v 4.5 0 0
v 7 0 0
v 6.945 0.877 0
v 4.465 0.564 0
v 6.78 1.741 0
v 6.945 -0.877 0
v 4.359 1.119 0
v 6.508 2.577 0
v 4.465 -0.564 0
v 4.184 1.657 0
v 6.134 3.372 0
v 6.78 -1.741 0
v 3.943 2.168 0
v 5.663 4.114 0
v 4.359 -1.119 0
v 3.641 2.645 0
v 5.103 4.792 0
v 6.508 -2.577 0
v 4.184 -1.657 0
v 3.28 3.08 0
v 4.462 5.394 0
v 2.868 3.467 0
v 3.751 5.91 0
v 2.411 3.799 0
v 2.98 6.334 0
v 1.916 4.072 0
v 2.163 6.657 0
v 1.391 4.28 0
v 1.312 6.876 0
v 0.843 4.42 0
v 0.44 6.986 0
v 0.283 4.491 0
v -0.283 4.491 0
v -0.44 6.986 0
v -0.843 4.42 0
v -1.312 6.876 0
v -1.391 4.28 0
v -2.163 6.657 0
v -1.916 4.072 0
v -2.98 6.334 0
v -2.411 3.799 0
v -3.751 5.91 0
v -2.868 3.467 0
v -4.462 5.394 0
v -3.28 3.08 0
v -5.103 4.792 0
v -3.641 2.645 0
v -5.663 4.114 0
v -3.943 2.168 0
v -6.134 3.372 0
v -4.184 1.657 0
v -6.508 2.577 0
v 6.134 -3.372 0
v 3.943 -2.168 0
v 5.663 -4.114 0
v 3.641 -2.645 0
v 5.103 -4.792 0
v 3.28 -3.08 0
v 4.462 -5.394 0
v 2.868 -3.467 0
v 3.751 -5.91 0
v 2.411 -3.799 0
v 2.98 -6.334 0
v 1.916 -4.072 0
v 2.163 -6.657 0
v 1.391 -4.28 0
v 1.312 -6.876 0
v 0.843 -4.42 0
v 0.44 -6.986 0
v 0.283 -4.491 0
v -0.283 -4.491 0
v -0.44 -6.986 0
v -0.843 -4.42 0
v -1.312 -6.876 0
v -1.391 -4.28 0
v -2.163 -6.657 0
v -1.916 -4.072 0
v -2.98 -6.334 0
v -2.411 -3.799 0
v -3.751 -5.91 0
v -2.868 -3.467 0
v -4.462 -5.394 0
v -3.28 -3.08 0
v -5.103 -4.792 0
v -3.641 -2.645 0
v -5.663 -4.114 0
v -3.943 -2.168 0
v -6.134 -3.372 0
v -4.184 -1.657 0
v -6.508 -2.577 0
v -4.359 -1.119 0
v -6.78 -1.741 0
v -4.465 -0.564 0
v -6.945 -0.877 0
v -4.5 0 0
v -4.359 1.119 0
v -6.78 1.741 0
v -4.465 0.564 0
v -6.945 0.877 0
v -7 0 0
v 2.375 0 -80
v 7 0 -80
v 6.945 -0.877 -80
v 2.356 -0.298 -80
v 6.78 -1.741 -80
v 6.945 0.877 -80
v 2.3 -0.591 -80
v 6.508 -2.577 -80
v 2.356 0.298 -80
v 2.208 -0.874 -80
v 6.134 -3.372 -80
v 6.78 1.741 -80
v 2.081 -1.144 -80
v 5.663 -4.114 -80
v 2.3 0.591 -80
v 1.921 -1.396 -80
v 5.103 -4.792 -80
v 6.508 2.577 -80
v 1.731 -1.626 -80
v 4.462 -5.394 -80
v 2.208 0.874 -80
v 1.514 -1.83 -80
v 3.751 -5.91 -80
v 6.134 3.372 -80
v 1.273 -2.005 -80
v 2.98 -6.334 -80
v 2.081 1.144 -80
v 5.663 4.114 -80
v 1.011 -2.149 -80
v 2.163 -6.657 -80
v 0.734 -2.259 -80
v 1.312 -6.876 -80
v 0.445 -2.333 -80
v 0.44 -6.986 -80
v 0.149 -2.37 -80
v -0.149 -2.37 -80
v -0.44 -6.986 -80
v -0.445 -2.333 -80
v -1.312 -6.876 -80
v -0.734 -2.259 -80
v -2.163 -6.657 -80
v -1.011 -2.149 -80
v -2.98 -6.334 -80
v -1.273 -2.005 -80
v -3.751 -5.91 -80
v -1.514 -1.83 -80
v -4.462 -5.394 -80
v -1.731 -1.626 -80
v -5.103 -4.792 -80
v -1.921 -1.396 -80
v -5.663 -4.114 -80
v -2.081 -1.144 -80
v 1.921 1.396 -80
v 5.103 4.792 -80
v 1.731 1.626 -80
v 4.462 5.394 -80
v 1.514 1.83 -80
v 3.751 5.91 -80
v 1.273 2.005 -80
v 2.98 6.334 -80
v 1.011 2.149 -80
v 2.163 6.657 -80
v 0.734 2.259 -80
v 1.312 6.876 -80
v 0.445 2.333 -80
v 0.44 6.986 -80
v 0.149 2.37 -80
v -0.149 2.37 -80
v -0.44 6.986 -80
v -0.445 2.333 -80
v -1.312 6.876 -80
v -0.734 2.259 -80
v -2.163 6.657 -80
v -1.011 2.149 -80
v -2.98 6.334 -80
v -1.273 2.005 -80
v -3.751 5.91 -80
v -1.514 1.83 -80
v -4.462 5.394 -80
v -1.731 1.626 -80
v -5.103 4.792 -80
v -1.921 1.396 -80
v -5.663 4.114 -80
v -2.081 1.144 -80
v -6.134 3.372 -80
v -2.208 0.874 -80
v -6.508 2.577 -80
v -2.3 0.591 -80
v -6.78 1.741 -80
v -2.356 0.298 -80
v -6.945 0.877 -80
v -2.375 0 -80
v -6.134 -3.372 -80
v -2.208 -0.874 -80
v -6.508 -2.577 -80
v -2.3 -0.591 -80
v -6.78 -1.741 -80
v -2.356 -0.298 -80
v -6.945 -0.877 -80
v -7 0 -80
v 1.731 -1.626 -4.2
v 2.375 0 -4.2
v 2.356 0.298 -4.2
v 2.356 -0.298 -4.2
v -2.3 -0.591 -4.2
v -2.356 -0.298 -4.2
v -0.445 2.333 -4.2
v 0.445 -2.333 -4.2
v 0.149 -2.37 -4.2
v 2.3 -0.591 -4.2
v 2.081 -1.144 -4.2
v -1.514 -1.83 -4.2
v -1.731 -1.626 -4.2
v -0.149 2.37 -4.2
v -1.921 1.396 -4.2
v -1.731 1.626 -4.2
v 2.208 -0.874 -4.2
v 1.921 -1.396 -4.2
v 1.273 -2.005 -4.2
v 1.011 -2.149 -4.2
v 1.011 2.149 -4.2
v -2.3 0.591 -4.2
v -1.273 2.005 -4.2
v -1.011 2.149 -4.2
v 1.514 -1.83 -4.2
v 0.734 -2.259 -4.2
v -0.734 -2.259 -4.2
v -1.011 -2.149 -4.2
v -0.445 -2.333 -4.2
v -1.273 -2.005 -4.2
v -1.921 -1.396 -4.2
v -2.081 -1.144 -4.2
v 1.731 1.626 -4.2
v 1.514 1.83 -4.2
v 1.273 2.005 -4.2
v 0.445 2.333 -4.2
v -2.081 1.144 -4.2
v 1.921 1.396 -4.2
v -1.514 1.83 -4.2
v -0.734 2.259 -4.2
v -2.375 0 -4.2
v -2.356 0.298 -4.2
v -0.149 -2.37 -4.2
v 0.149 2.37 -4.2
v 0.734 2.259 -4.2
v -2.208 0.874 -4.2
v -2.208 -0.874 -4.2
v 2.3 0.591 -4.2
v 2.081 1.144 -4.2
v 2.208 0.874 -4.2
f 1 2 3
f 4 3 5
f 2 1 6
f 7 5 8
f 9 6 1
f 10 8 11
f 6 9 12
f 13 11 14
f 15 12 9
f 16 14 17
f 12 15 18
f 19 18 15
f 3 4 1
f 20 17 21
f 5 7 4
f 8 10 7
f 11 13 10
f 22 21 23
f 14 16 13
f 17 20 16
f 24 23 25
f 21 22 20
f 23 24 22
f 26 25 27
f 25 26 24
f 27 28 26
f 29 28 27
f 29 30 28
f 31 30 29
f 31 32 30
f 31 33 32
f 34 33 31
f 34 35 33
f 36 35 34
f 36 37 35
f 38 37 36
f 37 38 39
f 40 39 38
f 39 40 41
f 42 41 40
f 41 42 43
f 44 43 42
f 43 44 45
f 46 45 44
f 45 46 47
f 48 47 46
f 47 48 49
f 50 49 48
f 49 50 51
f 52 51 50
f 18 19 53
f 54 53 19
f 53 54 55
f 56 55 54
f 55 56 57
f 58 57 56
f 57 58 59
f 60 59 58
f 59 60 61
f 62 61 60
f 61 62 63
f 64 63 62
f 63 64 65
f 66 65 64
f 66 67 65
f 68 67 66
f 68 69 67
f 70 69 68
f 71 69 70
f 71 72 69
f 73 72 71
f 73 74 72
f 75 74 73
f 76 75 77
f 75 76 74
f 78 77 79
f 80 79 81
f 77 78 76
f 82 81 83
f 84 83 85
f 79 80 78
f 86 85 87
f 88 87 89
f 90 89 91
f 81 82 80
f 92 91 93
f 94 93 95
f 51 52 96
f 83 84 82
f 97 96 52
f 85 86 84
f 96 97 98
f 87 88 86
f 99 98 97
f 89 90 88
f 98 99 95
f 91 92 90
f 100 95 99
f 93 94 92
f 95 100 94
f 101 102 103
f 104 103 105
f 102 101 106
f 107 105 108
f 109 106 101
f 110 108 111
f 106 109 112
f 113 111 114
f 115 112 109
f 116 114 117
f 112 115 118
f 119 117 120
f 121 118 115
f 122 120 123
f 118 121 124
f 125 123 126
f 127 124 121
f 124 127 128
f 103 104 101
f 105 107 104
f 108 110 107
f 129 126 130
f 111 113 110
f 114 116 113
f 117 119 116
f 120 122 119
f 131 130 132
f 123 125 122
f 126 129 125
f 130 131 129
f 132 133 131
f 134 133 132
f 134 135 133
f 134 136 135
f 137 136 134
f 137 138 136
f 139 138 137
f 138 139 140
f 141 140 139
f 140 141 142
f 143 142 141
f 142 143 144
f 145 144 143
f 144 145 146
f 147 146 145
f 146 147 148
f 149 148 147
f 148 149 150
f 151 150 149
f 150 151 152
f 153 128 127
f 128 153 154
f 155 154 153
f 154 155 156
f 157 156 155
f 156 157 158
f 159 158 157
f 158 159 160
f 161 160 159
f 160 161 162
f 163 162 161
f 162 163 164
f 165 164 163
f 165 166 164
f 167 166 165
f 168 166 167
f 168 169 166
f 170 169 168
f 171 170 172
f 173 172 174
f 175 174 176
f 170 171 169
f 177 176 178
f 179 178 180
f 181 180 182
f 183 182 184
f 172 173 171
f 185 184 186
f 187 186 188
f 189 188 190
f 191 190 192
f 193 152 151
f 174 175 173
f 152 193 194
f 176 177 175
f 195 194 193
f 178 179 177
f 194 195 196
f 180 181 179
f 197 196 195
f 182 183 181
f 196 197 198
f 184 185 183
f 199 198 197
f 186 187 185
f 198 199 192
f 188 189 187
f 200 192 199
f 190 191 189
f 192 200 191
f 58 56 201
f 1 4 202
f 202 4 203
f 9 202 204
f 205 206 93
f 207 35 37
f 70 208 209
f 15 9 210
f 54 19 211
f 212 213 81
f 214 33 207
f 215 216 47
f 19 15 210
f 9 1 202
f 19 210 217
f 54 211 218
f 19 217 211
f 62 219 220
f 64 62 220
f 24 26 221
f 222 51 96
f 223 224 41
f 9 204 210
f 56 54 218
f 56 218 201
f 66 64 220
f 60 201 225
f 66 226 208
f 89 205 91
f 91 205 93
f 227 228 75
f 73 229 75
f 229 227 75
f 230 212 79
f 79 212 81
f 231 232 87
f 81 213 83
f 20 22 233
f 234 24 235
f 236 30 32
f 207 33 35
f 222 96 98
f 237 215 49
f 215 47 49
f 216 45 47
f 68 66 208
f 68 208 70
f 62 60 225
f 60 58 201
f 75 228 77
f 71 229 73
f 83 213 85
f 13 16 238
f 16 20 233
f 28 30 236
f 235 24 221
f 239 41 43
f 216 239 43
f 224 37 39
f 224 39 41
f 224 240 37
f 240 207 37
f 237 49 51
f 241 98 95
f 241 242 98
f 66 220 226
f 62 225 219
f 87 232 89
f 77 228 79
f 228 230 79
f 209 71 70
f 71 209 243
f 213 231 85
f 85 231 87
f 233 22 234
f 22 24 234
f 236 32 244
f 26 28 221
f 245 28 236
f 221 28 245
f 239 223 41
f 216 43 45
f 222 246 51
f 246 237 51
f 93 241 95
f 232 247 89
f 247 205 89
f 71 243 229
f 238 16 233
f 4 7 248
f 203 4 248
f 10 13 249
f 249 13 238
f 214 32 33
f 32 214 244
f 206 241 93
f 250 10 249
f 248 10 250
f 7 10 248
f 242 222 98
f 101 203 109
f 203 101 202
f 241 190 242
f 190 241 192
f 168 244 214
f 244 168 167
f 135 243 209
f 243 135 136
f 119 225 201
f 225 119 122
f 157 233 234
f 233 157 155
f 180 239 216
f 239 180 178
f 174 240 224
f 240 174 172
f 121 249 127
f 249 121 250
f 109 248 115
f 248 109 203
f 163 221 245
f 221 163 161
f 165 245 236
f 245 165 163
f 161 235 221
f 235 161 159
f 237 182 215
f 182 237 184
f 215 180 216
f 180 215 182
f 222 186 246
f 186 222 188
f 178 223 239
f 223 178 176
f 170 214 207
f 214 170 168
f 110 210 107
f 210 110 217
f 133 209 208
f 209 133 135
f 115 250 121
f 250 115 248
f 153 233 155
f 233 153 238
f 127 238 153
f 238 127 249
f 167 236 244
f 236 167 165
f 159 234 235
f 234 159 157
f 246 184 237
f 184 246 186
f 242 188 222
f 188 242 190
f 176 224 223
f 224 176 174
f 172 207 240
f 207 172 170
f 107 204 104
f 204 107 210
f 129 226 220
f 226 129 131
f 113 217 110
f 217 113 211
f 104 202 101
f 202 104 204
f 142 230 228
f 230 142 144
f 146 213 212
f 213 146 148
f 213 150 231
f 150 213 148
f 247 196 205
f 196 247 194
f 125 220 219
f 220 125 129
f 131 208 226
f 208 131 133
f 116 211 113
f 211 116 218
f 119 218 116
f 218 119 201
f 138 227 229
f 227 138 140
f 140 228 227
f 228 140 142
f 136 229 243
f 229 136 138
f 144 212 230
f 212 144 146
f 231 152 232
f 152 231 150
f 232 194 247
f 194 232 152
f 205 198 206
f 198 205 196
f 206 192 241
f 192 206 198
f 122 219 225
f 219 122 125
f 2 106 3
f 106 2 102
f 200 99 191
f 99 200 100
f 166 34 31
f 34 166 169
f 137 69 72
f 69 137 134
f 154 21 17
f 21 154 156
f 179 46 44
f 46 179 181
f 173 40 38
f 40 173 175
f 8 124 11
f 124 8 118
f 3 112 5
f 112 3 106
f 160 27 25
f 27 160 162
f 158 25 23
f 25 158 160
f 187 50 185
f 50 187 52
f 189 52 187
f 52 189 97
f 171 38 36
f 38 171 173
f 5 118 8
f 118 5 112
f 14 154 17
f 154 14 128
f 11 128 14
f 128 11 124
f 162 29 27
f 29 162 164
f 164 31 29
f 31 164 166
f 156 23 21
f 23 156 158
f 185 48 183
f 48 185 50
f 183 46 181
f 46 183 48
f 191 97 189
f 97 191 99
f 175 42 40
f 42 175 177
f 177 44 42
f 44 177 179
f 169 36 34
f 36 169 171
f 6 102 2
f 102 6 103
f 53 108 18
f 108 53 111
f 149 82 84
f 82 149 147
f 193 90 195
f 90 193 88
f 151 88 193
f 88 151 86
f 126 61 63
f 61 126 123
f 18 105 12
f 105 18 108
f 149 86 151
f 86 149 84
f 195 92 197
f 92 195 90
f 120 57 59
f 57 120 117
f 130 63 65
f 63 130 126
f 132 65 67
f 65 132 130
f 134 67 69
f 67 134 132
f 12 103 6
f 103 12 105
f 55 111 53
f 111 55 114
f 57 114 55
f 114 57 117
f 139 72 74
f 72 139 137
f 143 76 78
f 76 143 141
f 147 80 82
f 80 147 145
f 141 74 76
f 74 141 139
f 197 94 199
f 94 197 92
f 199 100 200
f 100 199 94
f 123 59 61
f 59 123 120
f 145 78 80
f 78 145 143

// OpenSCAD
$fn = 50;


difference() {
	union() {
		translate(v = [0, 0, -80.0000000000]) {
			cylinder(h = 80, r = 7.0000000000);
		}
		cylinder(h = 0, r = 13.0000000000);
	}
	union() {
		translate(v = [0, 0, 0]) {
			rotate(a = [0, 0, 0]) {
				difference() {
					union() {
						#translate(v = [0, 0, -80.0000000000]) {
							cylinder(h = 80, r = 2.2500000000);
						}
						#translate(v = [0, 0, -4.2000000000]) {
							cylinder(h = 4.2000000000, r = 7.0000000000, r1 = 2.3750000000, r2 = 4.5000000000);
						}
						#translate(v = [0, 0, -80.0000000000]) {
							cylinder(h = 80, r = 2.3750000000);
						}
						#translate(v = [0, 0, -80.0000000000]) {
							cylinder(h = 80, r = 2.2500000000);
						}
					}
					union();
				}
			}
		}
	}
}
